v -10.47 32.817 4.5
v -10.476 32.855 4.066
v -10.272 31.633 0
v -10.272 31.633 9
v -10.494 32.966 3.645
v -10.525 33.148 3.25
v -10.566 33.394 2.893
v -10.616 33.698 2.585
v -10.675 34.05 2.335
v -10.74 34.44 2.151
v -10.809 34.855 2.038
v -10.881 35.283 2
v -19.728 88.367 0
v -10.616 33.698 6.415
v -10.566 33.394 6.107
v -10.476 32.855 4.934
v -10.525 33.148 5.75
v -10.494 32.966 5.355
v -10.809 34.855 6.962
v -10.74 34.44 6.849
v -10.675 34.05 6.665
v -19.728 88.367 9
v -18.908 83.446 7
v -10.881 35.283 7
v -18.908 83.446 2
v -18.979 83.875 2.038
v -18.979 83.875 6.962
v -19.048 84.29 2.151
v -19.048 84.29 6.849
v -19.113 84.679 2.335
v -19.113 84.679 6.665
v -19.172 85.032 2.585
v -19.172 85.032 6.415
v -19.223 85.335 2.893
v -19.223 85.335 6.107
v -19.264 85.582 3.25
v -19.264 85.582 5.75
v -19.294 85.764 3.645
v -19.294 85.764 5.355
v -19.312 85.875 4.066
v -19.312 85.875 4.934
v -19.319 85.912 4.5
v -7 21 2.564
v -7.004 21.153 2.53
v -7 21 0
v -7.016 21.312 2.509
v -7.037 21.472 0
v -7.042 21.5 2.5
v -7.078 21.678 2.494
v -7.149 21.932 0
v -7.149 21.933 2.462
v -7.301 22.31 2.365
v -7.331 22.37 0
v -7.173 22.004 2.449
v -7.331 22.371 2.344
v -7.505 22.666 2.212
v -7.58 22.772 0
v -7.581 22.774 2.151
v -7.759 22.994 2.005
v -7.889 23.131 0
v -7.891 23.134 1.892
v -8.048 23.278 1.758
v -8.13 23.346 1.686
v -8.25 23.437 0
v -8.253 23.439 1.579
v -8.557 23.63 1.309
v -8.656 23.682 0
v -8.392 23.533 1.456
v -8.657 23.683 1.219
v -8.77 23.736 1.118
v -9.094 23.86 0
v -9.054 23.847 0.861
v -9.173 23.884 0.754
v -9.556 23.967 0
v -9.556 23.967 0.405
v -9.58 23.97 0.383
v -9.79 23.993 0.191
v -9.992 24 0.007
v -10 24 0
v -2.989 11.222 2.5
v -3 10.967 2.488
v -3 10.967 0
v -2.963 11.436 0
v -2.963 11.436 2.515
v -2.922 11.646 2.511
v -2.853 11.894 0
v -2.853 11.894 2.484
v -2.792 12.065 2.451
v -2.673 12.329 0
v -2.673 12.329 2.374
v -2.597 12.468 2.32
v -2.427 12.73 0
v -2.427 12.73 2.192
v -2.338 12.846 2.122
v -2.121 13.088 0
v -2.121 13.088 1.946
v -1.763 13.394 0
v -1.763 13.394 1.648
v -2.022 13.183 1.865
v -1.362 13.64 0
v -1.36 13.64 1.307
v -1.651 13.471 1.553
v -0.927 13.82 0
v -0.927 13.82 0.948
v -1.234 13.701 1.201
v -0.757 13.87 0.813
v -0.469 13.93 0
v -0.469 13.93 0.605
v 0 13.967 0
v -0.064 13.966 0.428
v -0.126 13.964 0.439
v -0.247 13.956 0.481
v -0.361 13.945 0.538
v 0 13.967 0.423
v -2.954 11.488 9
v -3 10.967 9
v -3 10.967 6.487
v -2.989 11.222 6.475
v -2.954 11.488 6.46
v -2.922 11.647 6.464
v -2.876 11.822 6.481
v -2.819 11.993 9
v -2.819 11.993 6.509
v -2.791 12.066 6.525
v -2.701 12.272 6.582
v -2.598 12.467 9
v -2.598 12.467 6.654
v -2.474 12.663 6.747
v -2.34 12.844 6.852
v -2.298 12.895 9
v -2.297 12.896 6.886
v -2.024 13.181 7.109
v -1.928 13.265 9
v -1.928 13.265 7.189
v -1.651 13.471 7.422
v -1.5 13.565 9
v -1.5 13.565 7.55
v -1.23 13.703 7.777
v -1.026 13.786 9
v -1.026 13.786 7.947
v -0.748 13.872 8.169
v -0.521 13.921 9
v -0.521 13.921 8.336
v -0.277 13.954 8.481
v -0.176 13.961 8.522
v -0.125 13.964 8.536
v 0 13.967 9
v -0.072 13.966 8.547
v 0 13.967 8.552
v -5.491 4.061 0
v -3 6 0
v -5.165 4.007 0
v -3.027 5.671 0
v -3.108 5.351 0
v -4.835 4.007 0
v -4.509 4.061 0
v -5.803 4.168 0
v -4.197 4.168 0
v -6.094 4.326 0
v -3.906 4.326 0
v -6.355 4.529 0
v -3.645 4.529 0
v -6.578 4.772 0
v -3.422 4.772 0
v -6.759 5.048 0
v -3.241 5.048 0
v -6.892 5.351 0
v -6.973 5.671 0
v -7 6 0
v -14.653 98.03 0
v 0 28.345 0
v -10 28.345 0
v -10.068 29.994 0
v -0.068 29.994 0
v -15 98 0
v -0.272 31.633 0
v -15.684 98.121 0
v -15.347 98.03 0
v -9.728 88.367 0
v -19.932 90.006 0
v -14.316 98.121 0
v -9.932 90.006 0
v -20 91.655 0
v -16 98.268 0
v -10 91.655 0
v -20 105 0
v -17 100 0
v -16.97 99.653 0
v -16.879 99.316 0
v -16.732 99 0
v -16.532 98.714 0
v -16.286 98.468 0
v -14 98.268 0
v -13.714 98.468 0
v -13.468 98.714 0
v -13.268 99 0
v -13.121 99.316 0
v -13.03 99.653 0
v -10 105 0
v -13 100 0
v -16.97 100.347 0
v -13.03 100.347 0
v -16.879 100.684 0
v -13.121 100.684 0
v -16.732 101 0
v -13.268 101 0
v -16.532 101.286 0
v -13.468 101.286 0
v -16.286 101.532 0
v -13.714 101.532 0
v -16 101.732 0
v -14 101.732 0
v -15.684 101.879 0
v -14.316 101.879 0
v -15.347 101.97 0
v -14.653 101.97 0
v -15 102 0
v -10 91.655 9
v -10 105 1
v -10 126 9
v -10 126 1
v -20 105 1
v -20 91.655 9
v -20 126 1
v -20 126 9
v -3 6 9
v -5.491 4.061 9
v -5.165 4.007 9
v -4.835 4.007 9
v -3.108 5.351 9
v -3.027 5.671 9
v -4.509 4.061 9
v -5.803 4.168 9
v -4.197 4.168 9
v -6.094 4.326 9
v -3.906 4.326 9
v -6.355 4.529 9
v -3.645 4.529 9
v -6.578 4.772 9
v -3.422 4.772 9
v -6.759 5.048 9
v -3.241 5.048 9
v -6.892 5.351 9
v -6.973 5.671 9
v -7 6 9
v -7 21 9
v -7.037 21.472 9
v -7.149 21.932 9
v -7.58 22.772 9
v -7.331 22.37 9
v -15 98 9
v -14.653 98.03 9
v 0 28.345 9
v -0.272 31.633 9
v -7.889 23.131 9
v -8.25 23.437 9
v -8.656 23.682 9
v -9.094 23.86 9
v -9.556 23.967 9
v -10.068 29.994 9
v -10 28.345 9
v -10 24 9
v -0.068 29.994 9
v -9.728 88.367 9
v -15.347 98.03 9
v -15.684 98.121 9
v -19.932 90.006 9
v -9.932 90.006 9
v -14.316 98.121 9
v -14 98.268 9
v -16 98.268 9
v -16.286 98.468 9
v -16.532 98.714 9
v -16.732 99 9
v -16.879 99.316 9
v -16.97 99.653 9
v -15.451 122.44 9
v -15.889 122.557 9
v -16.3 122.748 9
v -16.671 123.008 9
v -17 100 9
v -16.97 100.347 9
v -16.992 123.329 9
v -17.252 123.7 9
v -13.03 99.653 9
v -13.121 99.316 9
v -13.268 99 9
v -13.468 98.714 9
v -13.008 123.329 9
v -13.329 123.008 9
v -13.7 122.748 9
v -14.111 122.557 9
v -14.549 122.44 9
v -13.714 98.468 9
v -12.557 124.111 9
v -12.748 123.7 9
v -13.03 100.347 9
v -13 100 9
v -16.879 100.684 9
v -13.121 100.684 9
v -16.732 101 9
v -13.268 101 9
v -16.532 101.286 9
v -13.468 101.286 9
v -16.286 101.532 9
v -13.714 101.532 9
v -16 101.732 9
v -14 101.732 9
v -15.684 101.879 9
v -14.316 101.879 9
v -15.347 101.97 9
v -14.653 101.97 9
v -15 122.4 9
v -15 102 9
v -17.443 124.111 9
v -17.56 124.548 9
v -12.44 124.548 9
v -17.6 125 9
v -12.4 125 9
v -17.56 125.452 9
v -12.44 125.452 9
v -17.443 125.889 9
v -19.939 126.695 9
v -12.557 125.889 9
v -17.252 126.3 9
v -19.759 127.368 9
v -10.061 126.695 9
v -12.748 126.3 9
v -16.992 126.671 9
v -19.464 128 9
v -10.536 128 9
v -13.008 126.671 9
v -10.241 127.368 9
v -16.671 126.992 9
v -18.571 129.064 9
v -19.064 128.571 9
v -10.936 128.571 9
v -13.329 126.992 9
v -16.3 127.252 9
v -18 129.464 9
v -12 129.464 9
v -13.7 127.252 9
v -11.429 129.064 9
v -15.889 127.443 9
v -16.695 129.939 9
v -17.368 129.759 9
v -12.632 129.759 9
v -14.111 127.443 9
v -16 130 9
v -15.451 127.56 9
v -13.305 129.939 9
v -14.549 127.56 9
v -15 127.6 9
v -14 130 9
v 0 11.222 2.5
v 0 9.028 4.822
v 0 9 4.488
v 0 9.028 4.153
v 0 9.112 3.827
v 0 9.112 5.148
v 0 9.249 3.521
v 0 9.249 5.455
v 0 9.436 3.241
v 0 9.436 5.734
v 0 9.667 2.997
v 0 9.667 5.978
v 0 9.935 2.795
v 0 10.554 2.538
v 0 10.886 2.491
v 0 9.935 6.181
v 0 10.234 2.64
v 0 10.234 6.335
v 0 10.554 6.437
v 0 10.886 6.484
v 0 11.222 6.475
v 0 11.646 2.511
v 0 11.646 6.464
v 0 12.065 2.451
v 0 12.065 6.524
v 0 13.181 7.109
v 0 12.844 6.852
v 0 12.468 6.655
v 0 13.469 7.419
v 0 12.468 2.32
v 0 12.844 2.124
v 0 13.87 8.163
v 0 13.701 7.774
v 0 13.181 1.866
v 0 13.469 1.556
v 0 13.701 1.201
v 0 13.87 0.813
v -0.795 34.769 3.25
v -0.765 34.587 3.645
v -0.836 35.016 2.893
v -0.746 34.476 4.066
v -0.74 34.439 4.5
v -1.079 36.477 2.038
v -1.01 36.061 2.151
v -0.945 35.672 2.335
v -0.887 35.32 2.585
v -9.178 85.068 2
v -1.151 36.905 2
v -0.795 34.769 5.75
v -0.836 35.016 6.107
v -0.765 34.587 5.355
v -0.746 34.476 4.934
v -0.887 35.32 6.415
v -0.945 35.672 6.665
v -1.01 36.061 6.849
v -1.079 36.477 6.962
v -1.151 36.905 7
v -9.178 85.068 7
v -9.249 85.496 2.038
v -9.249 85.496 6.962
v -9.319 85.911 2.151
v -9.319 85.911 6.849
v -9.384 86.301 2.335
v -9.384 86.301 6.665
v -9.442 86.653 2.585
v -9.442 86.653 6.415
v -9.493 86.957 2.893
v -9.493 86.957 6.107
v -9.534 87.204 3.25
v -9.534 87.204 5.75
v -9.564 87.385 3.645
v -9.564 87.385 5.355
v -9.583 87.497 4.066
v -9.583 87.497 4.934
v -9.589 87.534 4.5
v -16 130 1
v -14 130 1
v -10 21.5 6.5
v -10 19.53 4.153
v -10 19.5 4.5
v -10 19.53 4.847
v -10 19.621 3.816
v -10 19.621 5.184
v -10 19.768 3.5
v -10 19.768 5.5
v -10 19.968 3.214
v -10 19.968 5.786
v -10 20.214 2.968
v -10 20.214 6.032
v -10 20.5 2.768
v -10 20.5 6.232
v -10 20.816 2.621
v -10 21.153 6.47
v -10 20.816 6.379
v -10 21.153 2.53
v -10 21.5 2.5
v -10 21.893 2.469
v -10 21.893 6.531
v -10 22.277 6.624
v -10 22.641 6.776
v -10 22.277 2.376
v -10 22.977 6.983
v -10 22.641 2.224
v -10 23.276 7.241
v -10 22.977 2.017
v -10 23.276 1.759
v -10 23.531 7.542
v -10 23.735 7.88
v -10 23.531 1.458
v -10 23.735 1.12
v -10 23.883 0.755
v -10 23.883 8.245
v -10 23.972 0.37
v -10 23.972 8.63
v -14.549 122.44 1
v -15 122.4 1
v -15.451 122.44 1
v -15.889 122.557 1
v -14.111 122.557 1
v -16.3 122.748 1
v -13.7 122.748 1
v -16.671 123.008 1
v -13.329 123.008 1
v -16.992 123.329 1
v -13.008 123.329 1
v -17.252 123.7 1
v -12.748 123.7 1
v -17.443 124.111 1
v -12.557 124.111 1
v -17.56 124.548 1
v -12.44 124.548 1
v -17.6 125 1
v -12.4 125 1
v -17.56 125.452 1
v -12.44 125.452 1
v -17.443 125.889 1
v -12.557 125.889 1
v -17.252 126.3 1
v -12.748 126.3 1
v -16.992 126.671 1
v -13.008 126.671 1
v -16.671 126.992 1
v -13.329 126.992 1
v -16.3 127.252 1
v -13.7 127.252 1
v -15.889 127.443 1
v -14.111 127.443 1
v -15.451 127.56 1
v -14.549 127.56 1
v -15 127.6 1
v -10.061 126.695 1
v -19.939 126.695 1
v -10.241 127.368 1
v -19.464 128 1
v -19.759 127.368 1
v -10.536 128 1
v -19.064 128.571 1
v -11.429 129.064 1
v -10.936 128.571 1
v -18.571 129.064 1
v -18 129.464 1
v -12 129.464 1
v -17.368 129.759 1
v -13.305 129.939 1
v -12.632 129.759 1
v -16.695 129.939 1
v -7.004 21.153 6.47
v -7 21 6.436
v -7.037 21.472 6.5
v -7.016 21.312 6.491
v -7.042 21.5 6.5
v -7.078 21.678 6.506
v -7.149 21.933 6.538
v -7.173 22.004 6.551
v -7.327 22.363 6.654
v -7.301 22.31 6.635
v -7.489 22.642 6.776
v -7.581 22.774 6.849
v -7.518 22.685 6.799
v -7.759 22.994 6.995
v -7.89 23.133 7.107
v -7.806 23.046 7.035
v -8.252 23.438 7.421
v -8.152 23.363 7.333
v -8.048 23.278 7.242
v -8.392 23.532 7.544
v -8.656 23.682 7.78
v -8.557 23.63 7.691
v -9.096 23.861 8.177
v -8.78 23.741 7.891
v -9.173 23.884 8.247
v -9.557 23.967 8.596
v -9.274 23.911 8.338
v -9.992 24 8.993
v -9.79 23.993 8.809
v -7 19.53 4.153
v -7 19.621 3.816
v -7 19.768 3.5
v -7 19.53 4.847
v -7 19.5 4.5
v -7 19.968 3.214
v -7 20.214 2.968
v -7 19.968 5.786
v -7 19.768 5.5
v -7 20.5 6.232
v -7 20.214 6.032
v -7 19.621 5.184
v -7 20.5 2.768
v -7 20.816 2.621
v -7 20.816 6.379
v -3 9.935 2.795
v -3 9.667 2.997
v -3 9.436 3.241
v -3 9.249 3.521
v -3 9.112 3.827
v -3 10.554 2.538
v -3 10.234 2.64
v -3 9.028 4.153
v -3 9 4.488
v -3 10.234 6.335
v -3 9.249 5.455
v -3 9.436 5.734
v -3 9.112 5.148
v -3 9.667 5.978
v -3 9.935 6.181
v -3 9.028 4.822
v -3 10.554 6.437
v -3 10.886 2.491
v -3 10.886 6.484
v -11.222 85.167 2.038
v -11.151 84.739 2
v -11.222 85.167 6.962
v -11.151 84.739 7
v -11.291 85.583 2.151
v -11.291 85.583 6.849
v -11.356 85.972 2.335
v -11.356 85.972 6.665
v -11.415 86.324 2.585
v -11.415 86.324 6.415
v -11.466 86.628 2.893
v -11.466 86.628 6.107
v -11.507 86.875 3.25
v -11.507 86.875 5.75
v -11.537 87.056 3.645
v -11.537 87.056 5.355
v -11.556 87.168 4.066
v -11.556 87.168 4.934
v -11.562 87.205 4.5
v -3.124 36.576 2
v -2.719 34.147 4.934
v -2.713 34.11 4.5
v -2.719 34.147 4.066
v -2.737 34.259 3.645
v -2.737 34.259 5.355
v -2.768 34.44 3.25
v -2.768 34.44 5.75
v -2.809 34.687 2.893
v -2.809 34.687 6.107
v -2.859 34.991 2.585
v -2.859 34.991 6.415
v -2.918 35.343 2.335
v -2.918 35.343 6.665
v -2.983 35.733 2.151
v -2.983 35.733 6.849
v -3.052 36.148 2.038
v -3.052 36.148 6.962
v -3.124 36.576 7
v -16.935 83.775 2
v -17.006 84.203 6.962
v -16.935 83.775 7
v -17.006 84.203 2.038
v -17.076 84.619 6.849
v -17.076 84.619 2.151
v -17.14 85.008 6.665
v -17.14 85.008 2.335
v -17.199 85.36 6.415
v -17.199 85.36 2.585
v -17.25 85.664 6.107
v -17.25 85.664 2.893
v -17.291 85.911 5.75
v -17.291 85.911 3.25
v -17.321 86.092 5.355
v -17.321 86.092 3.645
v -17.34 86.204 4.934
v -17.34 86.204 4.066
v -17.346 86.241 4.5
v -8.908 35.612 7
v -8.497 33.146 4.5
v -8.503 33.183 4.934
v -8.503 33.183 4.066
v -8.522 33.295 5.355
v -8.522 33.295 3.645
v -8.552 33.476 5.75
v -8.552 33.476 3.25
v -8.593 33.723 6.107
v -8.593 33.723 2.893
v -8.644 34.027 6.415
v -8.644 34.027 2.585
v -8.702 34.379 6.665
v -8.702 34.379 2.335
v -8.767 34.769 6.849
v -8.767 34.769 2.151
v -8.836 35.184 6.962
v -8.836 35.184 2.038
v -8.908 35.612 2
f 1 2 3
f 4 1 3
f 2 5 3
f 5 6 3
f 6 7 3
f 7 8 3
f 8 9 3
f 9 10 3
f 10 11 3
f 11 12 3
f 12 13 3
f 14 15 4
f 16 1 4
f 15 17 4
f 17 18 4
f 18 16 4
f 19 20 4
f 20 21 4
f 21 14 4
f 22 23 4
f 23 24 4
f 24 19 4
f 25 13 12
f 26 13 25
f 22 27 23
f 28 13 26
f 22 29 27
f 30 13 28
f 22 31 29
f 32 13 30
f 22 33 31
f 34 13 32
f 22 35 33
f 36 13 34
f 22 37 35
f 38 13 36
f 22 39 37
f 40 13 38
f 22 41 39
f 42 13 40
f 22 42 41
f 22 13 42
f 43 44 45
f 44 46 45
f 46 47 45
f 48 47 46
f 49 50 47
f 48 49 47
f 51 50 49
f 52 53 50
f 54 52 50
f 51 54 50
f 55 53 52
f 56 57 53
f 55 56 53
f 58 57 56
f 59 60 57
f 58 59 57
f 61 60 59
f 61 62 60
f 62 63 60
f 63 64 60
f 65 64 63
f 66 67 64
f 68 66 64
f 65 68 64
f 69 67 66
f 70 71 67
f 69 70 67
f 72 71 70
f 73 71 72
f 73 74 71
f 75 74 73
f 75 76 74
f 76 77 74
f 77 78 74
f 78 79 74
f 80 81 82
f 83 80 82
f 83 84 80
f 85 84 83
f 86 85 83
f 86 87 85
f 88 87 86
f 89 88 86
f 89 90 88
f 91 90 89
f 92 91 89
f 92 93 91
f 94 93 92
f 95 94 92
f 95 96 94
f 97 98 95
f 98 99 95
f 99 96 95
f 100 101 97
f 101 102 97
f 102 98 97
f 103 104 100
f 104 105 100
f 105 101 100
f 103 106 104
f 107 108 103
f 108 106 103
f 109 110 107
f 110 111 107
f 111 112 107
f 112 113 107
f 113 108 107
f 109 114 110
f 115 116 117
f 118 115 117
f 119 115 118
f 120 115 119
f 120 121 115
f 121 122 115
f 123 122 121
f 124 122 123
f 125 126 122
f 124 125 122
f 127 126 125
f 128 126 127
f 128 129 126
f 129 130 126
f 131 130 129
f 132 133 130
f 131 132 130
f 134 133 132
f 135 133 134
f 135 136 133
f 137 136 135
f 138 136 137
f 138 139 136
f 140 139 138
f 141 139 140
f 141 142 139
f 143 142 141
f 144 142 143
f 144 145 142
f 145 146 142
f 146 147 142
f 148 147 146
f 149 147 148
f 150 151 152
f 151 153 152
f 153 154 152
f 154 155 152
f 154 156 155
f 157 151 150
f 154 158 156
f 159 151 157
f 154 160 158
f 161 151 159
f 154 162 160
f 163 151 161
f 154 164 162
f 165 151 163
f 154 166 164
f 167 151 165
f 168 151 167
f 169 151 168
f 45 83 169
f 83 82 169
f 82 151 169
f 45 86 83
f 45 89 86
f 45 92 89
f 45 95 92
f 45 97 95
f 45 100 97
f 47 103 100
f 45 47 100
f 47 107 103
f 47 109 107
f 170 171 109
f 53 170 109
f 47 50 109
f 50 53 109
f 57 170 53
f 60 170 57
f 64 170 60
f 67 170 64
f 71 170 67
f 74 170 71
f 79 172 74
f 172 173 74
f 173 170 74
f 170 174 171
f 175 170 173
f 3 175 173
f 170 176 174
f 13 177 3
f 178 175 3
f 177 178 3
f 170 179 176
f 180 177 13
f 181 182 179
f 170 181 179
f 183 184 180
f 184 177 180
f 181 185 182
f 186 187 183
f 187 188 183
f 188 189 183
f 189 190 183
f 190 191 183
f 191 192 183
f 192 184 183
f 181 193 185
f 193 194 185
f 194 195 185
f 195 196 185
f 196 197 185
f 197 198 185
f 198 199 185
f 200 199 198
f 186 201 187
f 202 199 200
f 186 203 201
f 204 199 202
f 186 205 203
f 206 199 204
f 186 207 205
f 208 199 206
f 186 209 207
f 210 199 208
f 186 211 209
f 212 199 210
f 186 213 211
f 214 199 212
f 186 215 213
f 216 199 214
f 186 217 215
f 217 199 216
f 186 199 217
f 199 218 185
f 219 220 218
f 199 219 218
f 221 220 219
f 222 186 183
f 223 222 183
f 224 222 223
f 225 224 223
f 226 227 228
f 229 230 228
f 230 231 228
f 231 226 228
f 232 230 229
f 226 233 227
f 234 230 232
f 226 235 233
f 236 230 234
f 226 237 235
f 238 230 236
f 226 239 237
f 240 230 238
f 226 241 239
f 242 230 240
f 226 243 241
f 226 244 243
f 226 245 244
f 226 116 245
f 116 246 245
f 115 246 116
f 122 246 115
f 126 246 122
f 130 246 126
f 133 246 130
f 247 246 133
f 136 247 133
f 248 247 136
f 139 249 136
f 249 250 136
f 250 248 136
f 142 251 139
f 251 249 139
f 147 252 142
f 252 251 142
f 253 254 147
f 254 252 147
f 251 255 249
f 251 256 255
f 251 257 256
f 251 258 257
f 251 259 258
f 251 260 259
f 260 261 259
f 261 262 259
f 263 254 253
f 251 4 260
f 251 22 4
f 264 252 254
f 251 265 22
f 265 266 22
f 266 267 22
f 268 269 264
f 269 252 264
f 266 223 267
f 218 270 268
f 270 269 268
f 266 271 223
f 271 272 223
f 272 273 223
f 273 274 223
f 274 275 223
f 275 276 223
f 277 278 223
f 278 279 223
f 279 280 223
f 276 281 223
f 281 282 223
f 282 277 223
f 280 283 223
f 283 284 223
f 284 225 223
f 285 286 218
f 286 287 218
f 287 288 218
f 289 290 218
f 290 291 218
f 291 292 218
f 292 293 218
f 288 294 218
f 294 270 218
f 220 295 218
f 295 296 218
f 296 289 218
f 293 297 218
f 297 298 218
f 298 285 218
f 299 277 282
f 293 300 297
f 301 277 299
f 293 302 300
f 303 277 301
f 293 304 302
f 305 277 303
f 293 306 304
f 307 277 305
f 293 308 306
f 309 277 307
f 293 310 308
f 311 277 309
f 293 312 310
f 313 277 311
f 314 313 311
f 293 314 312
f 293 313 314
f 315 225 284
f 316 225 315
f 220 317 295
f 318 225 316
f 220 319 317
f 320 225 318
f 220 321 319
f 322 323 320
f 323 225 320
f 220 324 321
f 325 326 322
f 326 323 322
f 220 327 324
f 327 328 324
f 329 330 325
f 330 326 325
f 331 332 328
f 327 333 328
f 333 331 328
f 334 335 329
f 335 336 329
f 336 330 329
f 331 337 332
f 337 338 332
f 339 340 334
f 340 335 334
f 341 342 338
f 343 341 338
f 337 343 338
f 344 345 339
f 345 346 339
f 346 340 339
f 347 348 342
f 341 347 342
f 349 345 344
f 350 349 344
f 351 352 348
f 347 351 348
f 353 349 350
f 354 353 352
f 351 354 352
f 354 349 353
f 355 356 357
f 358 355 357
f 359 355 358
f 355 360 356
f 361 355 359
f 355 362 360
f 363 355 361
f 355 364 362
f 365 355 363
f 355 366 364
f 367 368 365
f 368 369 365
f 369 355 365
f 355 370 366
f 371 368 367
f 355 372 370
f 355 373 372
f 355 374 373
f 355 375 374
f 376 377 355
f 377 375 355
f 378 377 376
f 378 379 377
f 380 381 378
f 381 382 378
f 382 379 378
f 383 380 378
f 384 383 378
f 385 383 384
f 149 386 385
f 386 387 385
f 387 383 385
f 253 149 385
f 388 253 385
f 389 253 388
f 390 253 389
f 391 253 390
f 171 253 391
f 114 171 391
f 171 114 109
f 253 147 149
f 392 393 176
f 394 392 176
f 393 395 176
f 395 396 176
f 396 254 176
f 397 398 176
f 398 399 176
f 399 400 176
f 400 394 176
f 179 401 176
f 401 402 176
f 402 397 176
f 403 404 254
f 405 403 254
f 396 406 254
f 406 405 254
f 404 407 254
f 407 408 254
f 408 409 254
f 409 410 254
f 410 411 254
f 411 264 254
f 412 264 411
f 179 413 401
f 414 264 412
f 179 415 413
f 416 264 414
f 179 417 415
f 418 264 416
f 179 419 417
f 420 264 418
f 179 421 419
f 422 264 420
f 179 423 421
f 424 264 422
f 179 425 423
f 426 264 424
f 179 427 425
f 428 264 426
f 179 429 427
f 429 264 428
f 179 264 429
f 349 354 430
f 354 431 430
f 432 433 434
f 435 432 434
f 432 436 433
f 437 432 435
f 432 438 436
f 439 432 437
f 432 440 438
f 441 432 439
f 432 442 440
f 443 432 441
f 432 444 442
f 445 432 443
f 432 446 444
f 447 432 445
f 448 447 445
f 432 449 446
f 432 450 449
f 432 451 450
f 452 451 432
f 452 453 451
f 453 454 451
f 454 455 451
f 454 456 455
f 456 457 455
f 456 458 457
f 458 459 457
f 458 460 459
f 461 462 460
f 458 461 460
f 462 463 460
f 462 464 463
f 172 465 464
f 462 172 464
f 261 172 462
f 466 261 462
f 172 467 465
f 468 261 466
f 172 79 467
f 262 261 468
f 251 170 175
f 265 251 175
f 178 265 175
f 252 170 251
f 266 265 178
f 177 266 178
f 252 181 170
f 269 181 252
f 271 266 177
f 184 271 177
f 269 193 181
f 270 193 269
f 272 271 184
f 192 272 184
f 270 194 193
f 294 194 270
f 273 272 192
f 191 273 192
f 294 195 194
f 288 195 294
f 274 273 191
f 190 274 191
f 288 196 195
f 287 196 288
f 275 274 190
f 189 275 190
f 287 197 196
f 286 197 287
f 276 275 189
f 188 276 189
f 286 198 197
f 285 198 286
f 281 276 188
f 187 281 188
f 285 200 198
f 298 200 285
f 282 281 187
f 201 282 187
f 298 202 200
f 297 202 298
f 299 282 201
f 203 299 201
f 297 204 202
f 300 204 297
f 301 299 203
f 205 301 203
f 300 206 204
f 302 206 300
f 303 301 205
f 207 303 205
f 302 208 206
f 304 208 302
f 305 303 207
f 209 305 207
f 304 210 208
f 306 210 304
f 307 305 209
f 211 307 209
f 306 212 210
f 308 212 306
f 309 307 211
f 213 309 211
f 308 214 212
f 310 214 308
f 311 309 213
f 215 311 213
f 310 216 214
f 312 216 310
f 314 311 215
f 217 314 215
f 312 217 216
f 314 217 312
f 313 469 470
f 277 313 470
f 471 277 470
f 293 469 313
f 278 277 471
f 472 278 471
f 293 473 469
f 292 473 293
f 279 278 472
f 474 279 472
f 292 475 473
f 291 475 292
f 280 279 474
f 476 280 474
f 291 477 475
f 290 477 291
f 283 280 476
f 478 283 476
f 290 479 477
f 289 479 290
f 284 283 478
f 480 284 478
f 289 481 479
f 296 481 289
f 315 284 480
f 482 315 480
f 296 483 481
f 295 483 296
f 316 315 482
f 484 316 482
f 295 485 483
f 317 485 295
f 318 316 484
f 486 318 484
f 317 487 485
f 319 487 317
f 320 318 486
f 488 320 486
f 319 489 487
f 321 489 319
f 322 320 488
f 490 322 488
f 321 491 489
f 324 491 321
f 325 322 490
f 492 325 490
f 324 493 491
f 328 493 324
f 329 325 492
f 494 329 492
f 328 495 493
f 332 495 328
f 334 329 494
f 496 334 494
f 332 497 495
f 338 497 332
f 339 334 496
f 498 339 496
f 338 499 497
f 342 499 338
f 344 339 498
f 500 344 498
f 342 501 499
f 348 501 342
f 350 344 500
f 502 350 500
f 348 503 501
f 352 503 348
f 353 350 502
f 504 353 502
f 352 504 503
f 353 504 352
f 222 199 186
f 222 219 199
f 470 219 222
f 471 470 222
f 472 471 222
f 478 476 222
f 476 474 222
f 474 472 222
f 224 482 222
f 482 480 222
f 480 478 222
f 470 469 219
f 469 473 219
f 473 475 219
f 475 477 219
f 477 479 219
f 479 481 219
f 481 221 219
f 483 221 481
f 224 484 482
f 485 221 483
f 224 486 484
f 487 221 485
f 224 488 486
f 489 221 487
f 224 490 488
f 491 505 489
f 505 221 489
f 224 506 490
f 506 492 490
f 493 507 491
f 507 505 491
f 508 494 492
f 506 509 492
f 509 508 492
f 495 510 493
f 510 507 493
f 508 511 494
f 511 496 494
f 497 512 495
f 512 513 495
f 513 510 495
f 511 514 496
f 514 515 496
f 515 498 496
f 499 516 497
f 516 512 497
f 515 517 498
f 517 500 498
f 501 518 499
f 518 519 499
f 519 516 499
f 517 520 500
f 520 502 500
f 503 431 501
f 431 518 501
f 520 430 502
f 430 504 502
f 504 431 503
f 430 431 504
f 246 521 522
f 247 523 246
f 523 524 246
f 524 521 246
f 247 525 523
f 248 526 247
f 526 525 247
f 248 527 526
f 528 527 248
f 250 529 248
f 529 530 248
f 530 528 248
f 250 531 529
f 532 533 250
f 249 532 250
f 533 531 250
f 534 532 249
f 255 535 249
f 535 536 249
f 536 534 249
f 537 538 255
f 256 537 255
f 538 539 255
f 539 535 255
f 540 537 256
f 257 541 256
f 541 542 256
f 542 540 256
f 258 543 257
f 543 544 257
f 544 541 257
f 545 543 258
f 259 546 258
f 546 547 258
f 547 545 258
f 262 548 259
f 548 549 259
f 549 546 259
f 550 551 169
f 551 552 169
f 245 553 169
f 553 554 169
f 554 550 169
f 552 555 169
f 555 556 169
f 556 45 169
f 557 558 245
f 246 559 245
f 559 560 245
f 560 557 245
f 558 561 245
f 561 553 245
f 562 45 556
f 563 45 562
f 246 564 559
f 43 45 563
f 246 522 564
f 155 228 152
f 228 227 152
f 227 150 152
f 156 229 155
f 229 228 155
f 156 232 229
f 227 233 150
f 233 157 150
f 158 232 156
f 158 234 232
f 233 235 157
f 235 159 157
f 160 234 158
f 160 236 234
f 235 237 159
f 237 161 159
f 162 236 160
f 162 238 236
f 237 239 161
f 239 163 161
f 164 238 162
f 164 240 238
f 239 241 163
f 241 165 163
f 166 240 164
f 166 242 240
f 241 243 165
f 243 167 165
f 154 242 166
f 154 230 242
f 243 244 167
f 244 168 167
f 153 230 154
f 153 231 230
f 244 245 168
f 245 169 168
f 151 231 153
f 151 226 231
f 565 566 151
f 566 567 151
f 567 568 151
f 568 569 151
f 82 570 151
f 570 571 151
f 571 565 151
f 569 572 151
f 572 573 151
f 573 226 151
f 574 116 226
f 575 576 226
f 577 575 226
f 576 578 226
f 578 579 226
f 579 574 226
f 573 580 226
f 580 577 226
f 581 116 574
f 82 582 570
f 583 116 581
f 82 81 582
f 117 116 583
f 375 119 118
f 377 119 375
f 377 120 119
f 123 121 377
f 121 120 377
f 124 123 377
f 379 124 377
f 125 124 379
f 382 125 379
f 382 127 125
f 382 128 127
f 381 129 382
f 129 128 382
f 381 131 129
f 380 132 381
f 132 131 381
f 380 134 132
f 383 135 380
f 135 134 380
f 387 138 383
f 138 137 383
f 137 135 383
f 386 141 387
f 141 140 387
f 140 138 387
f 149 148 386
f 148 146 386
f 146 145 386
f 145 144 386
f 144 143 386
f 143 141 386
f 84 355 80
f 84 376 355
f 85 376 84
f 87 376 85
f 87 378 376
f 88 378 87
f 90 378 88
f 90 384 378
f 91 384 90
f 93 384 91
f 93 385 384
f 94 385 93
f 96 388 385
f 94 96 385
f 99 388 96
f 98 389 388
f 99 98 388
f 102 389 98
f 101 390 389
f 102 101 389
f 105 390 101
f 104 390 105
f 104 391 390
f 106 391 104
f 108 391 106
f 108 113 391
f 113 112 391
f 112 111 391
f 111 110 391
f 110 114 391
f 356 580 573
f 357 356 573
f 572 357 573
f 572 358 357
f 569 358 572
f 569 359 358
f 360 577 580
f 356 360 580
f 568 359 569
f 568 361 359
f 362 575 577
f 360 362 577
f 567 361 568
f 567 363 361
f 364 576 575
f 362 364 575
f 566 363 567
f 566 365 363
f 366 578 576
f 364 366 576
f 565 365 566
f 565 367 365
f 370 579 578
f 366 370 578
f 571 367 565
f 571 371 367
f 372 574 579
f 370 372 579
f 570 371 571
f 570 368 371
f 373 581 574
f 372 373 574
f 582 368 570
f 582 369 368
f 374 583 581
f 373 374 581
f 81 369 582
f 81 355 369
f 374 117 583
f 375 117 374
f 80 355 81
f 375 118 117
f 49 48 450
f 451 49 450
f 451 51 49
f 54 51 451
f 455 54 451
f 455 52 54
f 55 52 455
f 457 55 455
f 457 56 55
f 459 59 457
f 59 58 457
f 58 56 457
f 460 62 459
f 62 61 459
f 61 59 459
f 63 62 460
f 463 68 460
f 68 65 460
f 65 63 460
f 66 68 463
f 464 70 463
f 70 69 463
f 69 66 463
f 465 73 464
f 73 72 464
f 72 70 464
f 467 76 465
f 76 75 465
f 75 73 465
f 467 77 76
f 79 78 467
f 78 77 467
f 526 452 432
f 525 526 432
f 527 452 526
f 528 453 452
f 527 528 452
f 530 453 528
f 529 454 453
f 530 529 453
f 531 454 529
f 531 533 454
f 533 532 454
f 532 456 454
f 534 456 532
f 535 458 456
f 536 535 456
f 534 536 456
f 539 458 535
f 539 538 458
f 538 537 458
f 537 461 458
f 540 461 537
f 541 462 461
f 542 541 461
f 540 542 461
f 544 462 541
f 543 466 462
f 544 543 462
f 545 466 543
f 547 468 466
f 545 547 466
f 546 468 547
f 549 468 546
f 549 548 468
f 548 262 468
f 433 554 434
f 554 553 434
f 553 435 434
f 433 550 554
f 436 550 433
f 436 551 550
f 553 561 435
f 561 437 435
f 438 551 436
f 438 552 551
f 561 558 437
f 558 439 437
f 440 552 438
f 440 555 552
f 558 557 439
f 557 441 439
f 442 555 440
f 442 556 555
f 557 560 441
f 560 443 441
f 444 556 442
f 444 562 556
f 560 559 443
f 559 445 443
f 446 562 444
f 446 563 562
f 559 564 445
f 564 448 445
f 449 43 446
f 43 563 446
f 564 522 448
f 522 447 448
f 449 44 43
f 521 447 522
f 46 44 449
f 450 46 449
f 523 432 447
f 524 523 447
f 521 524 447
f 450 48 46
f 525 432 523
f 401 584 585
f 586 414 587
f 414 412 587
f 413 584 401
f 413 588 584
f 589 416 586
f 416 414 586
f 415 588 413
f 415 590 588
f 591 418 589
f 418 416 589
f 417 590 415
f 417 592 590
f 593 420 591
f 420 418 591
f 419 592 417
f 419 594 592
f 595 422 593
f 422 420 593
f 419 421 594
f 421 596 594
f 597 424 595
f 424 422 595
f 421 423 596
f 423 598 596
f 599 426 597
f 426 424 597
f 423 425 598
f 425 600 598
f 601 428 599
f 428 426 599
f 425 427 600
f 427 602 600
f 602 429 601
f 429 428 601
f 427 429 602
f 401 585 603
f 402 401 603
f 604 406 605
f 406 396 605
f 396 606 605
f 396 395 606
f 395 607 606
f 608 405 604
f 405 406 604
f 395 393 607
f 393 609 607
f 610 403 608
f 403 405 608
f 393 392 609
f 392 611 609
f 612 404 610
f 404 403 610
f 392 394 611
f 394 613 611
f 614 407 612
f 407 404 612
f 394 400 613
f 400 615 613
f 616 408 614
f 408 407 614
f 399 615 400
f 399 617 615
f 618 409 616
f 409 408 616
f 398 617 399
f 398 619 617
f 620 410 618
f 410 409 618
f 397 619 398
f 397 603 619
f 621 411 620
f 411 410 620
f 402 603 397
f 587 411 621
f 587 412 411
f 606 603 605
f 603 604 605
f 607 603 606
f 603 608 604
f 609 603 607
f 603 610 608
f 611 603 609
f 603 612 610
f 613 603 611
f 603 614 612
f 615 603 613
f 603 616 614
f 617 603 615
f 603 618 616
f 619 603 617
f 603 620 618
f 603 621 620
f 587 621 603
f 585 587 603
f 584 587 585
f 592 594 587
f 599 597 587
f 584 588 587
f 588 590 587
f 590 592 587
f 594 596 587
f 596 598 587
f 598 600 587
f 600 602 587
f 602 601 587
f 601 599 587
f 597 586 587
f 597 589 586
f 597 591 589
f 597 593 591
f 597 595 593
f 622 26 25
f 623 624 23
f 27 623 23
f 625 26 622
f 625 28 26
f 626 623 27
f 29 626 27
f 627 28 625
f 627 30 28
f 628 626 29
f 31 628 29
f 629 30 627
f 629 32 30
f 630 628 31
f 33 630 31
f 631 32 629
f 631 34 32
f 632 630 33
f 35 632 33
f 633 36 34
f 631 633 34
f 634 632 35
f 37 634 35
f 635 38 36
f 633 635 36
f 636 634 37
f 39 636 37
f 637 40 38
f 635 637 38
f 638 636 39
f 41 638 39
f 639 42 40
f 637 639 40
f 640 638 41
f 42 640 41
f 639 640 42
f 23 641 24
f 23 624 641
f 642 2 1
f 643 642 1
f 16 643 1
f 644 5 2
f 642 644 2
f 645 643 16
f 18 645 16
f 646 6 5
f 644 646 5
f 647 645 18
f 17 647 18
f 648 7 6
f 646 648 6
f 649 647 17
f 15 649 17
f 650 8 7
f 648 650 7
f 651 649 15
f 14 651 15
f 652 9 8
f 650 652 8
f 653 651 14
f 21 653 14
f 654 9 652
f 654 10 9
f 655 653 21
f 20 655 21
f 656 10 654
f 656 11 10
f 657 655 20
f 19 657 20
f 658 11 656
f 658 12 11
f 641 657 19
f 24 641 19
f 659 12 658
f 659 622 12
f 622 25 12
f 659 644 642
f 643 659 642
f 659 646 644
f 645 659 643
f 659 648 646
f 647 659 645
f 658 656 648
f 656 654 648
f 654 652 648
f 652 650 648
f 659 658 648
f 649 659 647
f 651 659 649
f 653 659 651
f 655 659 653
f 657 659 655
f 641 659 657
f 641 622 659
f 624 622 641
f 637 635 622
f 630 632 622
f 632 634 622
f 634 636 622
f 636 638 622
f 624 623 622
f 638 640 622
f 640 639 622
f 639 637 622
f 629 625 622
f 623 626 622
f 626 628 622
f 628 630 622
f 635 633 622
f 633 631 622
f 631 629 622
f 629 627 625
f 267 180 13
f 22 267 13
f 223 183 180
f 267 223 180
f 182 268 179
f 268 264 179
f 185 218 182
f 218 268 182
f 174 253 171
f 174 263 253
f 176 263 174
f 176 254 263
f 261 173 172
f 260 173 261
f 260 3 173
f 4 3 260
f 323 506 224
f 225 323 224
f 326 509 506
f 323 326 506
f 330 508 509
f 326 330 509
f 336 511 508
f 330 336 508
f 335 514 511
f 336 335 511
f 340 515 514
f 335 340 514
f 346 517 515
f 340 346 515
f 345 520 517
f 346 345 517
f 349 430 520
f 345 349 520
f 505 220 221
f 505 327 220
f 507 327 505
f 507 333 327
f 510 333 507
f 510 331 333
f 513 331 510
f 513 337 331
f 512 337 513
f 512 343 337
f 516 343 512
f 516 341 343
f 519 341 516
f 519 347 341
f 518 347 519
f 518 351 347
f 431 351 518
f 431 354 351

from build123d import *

# Parameters (mm, degrees)
SKETCH1_R           = 2
SKETCH1_R_2         = 2.6
BOSS_EXTRUDE1_DEPTH = 9
FILLET1_R           = 4
SKETCH3_W           = 1
SKETCH3_H           = 25
CUT_EXTRUDE2_DEPTH  = 131.694299799
CUT_EXTRUDE3_DEPTH  = 132.837020597
BOSS_EXTRUDE2_DEPTH = 3
BOSS_EXTRUDE4_DEPTH = 5
CUT_EXTRUDE4_DEPTH  = 2
FILLET2_R           = 20
FILLET3_R           = 4


with BuildPart() as part:
    # Sketch1 → Boss-Extrude1 (new body)
    with BuildSketch(Plane.XY):
        Polygon((0, 0), (-10, 0), (-10, 30), (-20, 90), (-20, 130), (-10, 130), (-10, 90), (0, 30), align=None)
        with Locations((-15, 100)):
            Circle(SKETCH1_R, mode=Mode.SUBTRACT)
        with Locations((-15, 125)):
            Circle(SKETCH1_R_2, mode=Mode.SUBTRACT)
    extrude(amount=BOSS_EXTRUDE1_DEPTH)

    # Fillet1
    fillet1_edges = [part.edges().sort_by_distance(p)[0] for p in [
        (0, 0, 4.5),
        (-10, 0, 4.5),
    ]]
    fillet(fillet1_edges, radius=FILLET1_R)

    # Sketch3 → Cut-Extrude2 (cut, through all)
    with BuildSketch(Plane.ZY.offset(10)):
        with Locations((0.5, 117.5)):
            Rectangle(SKETCH3_W, SKETCH3_H)
    extrude(amount=CUT_EXTRUDE2_DEPTH, mode=Mode.SUBTRACT)

    # Sketch5 → Cut-Extrude3 (cut, through all)
    with BuildSketch(Plane.XY.offset(9)):
        with BuildLine():
            Line((-10, 4), (-10, 24))
            ThreePointArc((-10, 24), (-7.878679656, 23.121320344), (-7, 21))
            Line((-7, 21), (-7, 6))
            ThreePointArc((-7, 6), (-5, 4), (-3, 6))
            Line((-3, 6), (-3, 10.96659189))
            ThreePointArc((-3, 10.96659189), (-2.121320344, 13.087912234), (0, 13.96659189))
            Line((0, 13.96659189), (0, 4))
            ThreePointArc((0, 4), (-1.171572875, 1.171572875), (-4, 0))
            Line((-4, 0), (-6, 0))
            ThreePointArc((-6, 0), (-8.828427125, 1.171572875), (-10, 4))
        make_face()
    extrude(amount=-CUT_EXTRUDE3_DEPTH, mode=Mode.SUBTRACT)

    # Boss-Extrude2: read off the stored shape, not the designer's step
    # Boss-Extrude2 outline → Boss-Extrude2 (add)
    with BuildSketch(Plane.ZY):
        with BuildLine():
            Line((9, 13.96659189), (9, 30))
            Line((9, 30), (0, 30))
            Line((0, 30), (0, 13.96659189))
            Line((0, 13.96659189), (0.423395215, 13.96659189))
            ThreePointArc((0.423395215, 13.96659189), (2.009052541, 13.008624555), (2.499994655, 11.222291324))
            ThreePointArc((2.499994655, 11.222291324), (4.487608253, 9.000047793), (6.47522185, 11.222291324))
            ThreePointArc((6.47522185, 11.222291324), (6.966163965, 13.008624555), (8.551821291, 13.96659189))
            Line((8.551821291, 13.96659189), (9, 13.96659189))
        make_face()
    extrude(amount=BOSS_EXTRUDE2_DEPTH)

    # Sketch8 → Boss-Extrude4 (add)
    with BuildSketch(Plane.ZY.offset(10)):
        with BuildLine():
            Line((2.5, 21.5), (6.5, 21.5))
            ThreePointArc((6.5, 21.5), (4.5, 19.5), (2.5, 21.5))
        make_face()
        with BuildLine():
            ThreePointArc((0, 24), (1.767766953, 23.267766953), (2.5, 21.5))
            Line((2.5, 21.5), (6.5, 21.5))
            ThreePointArc((6.5, 21.5), (7.232233047, 23.267766953), (9, 24))
            Line((9, 24), (0, 24))
        make_face()
    extrude(amount=-BOSS_EXTRUDE4_DEPTH)

    # Sketch9 → Cut-Extrude4 (cut)
    with BuildSketch(Plane(origin=(4.931969619, 0.408182285, 0), x_dir=(0, 0, -1), z_dir=(0.9863939238321437, 0.16439898730535749, 0))):
        with BuildLine():
            Line((-7, 37), (-7, 85.827625303))
            ThreePointArc((-7, 85.827625303), (-4.5, 88.327625303), (-2, 85.827625303))
            Line((-2, 85.827625303), (-2, 37))
            ThreePointArc((-2, 37), (-4.5, 34.5), (-7, 37))
        make_face()
    cut_extrude4 = extrude(amount=-CUT_EXTRUDE4_DEPTH, mode=Mode.SUBTRACT)

    # Mirror1: Cut-Extrude4 across plane
    add(cut_extrude4.mirror(Plane(origin=(0, 0, 0), x_dir=(0, 0, 1), z_dir=(0.9863939238321437, 0.16439898730535743, 0))), mode=Mode.SUBTRACT)

    # Fillet2
    fillet2_edges = [part.edges().sort_by_distance(p)[0] for p in [
        (-10, 30, 4.5),
        (-20, 90, 4.5),
        (-10, 90, 4.5),
        (0, 30, 4.5),
    ]]
    fillet(fillet2_edges, radius=FILLET2_R)

    # Fillet3
    fillet3_edges = [part.edges().sort_by_distance(p)[0] for p in [
        (-20, 130, 5),
        (-10, 130, 5),
    ]]
    fillet(fillet3_edges, radius=FILLET3_R)


solid = part.part
